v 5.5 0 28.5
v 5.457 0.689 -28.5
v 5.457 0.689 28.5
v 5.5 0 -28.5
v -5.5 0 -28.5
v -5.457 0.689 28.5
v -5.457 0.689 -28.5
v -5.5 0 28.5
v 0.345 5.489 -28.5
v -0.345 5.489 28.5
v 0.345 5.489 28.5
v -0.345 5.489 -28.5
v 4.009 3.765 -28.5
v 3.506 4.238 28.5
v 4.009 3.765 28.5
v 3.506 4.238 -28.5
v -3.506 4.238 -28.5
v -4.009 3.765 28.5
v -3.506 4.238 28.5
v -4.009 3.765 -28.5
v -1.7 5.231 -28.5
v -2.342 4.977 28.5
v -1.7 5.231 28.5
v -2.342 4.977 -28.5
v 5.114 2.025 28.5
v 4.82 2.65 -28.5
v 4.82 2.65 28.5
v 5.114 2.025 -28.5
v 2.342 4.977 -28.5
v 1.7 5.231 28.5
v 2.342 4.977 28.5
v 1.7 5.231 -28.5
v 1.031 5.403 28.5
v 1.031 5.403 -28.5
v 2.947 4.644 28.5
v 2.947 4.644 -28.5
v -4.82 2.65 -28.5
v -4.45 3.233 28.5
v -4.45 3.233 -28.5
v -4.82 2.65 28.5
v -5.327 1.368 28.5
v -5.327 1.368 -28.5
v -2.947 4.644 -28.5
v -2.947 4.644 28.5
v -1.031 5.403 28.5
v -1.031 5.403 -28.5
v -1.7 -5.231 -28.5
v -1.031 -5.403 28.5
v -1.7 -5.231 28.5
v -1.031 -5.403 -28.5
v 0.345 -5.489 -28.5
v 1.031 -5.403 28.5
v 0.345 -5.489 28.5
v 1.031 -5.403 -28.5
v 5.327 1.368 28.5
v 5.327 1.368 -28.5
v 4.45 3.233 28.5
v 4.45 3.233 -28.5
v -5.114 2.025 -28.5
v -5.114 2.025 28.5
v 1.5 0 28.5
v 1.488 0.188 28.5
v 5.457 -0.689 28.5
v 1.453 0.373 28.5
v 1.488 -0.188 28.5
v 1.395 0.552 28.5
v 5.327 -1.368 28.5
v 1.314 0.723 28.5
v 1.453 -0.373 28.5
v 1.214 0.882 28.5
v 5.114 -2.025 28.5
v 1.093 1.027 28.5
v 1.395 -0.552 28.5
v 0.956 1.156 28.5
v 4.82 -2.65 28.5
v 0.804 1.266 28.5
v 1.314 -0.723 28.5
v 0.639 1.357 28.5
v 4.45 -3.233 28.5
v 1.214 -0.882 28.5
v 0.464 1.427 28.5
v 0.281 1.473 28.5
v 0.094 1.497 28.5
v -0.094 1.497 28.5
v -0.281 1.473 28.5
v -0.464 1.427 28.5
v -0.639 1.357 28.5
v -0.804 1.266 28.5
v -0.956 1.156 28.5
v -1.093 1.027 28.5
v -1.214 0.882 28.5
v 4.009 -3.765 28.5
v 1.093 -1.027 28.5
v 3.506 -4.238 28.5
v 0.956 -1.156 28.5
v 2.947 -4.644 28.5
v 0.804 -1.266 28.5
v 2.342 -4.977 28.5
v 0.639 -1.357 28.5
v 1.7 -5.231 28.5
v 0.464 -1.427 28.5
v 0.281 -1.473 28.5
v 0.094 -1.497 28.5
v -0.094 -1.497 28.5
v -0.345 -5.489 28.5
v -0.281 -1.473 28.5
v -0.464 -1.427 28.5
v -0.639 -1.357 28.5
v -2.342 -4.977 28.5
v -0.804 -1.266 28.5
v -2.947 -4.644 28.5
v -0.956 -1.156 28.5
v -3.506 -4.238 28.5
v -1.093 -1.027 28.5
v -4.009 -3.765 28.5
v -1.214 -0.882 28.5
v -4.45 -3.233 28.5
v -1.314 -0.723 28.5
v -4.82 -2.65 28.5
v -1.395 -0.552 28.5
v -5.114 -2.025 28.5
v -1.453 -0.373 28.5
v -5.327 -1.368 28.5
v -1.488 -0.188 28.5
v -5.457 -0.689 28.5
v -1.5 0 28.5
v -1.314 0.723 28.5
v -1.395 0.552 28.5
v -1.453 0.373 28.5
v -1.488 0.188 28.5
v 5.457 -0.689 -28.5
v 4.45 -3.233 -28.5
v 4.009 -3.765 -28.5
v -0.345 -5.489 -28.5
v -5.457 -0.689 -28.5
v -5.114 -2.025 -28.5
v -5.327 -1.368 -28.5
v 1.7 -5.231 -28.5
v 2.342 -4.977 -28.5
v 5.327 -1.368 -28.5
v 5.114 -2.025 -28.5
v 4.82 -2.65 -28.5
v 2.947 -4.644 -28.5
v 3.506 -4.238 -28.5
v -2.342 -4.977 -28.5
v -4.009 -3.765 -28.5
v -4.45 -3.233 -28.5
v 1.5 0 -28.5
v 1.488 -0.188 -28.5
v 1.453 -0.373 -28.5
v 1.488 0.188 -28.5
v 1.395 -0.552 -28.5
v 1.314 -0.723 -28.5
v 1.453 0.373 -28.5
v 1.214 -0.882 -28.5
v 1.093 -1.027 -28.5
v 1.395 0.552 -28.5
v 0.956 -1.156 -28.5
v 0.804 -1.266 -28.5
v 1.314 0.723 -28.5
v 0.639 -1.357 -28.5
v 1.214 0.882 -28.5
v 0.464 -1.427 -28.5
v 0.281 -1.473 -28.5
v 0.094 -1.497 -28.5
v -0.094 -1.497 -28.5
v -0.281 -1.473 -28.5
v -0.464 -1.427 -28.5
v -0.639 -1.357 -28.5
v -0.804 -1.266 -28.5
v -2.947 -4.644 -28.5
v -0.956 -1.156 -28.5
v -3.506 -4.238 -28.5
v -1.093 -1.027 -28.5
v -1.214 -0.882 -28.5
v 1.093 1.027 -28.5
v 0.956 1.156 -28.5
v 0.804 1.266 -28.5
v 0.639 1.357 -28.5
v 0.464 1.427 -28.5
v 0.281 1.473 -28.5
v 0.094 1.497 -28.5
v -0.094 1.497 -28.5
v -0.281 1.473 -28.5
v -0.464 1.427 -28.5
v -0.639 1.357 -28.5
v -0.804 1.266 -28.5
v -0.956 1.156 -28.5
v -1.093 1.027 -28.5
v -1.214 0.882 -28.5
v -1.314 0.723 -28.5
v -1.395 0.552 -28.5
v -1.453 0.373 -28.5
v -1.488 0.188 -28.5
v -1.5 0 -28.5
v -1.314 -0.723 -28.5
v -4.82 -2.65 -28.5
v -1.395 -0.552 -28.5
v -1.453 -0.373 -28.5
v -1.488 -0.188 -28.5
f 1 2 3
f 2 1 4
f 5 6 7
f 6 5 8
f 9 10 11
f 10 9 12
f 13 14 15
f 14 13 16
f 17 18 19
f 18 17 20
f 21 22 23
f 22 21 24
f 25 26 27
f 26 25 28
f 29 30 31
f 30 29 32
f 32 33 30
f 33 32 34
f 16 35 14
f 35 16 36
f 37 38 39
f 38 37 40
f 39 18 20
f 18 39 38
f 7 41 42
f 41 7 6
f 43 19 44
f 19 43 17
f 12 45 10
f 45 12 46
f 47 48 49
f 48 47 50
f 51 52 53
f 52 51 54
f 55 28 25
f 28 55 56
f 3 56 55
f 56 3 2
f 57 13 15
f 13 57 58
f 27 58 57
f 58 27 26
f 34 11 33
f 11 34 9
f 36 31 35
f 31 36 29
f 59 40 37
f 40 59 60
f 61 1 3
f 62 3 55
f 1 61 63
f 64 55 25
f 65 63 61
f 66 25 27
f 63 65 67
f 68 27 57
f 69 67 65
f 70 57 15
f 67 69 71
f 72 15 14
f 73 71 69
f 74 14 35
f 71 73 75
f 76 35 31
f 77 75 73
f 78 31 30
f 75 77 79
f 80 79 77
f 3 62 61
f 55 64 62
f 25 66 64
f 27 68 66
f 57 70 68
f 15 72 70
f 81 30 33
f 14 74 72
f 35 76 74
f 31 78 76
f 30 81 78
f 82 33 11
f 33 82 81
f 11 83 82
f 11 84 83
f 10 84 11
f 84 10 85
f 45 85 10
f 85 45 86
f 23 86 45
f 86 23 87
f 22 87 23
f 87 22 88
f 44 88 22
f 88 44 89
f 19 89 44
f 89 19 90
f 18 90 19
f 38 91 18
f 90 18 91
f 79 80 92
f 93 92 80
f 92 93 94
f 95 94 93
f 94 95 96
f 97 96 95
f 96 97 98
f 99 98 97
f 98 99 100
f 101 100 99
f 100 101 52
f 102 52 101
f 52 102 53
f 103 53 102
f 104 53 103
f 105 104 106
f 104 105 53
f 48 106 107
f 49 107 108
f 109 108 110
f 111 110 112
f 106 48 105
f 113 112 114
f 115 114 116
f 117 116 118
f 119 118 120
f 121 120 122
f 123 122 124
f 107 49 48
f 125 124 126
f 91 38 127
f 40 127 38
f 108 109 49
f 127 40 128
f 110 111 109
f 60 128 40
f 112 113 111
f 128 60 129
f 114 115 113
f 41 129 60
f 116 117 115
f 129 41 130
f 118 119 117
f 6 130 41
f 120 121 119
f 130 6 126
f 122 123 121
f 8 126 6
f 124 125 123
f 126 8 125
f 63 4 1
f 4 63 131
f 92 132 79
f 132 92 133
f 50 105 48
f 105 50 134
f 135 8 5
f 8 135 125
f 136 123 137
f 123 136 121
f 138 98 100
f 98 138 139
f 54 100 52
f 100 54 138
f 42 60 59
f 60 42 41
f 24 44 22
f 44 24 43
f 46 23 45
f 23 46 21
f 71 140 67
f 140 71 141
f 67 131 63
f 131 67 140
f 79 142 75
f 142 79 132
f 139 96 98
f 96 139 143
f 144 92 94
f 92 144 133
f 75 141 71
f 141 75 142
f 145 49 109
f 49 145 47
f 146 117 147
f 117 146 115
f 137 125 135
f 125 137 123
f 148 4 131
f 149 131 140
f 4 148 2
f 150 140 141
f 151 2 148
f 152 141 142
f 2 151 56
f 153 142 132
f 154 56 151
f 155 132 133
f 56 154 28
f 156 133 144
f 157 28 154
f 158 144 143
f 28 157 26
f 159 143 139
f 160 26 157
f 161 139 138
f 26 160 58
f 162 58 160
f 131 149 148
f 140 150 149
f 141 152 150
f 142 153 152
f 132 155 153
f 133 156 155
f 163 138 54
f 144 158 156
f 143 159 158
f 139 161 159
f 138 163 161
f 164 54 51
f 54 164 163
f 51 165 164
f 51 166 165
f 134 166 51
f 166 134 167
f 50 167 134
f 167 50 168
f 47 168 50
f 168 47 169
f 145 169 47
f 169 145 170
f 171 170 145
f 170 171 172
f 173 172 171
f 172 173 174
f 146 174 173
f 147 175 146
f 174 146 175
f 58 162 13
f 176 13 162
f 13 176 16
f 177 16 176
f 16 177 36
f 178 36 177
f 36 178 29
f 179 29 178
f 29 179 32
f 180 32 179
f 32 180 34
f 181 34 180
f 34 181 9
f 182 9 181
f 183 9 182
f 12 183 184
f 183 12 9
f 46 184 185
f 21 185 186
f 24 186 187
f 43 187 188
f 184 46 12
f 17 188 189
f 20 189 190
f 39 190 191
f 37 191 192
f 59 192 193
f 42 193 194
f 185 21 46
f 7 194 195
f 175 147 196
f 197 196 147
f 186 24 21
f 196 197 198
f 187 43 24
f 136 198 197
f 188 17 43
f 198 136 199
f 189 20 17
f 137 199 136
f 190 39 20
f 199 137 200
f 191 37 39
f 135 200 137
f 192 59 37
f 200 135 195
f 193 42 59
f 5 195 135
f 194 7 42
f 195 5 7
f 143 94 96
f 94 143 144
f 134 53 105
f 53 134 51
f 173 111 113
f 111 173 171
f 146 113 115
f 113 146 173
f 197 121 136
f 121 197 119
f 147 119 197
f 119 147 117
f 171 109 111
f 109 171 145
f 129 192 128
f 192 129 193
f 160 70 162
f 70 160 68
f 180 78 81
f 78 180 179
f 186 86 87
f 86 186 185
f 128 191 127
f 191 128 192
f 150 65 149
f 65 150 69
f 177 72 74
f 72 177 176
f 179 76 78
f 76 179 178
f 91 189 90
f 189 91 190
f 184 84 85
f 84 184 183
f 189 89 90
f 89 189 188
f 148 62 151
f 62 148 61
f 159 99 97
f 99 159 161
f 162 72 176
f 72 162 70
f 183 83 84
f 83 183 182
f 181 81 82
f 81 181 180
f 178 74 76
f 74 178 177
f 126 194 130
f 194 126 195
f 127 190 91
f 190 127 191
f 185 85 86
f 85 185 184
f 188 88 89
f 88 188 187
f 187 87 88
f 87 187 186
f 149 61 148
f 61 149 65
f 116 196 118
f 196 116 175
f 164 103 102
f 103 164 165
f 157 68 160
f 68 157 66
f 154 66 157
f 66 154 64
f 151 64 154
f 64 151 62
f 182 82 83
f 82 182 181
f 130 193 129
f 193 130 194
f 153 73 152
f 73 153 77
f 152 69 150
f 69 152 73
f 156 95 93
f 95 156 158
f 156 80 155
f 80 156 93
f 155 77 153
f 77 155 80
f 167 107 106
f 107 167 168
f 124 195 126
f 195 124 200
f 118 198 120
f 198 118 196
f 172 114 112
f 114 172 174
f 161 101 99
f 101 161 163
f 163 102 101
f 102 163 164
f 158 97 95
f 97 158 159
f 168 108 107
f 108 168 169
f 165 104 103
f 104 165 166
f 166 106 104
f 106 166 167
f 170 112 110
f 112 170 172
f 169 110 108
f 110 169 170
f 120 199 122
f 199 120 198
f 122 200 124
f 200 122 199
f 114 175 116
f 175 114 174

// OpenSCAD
$fn = 50;


difference() {
	union() {
		translate(v = [0, 0, -28.5000000000]) {
			cylinder(h = 57, r = 5.5000000000);
		}
	}
	union() {
		translate(v = [0, 0, -100.0000000000]) {
			cylinder(h = 200, r = 1.5000000000);
		}
	}
}
